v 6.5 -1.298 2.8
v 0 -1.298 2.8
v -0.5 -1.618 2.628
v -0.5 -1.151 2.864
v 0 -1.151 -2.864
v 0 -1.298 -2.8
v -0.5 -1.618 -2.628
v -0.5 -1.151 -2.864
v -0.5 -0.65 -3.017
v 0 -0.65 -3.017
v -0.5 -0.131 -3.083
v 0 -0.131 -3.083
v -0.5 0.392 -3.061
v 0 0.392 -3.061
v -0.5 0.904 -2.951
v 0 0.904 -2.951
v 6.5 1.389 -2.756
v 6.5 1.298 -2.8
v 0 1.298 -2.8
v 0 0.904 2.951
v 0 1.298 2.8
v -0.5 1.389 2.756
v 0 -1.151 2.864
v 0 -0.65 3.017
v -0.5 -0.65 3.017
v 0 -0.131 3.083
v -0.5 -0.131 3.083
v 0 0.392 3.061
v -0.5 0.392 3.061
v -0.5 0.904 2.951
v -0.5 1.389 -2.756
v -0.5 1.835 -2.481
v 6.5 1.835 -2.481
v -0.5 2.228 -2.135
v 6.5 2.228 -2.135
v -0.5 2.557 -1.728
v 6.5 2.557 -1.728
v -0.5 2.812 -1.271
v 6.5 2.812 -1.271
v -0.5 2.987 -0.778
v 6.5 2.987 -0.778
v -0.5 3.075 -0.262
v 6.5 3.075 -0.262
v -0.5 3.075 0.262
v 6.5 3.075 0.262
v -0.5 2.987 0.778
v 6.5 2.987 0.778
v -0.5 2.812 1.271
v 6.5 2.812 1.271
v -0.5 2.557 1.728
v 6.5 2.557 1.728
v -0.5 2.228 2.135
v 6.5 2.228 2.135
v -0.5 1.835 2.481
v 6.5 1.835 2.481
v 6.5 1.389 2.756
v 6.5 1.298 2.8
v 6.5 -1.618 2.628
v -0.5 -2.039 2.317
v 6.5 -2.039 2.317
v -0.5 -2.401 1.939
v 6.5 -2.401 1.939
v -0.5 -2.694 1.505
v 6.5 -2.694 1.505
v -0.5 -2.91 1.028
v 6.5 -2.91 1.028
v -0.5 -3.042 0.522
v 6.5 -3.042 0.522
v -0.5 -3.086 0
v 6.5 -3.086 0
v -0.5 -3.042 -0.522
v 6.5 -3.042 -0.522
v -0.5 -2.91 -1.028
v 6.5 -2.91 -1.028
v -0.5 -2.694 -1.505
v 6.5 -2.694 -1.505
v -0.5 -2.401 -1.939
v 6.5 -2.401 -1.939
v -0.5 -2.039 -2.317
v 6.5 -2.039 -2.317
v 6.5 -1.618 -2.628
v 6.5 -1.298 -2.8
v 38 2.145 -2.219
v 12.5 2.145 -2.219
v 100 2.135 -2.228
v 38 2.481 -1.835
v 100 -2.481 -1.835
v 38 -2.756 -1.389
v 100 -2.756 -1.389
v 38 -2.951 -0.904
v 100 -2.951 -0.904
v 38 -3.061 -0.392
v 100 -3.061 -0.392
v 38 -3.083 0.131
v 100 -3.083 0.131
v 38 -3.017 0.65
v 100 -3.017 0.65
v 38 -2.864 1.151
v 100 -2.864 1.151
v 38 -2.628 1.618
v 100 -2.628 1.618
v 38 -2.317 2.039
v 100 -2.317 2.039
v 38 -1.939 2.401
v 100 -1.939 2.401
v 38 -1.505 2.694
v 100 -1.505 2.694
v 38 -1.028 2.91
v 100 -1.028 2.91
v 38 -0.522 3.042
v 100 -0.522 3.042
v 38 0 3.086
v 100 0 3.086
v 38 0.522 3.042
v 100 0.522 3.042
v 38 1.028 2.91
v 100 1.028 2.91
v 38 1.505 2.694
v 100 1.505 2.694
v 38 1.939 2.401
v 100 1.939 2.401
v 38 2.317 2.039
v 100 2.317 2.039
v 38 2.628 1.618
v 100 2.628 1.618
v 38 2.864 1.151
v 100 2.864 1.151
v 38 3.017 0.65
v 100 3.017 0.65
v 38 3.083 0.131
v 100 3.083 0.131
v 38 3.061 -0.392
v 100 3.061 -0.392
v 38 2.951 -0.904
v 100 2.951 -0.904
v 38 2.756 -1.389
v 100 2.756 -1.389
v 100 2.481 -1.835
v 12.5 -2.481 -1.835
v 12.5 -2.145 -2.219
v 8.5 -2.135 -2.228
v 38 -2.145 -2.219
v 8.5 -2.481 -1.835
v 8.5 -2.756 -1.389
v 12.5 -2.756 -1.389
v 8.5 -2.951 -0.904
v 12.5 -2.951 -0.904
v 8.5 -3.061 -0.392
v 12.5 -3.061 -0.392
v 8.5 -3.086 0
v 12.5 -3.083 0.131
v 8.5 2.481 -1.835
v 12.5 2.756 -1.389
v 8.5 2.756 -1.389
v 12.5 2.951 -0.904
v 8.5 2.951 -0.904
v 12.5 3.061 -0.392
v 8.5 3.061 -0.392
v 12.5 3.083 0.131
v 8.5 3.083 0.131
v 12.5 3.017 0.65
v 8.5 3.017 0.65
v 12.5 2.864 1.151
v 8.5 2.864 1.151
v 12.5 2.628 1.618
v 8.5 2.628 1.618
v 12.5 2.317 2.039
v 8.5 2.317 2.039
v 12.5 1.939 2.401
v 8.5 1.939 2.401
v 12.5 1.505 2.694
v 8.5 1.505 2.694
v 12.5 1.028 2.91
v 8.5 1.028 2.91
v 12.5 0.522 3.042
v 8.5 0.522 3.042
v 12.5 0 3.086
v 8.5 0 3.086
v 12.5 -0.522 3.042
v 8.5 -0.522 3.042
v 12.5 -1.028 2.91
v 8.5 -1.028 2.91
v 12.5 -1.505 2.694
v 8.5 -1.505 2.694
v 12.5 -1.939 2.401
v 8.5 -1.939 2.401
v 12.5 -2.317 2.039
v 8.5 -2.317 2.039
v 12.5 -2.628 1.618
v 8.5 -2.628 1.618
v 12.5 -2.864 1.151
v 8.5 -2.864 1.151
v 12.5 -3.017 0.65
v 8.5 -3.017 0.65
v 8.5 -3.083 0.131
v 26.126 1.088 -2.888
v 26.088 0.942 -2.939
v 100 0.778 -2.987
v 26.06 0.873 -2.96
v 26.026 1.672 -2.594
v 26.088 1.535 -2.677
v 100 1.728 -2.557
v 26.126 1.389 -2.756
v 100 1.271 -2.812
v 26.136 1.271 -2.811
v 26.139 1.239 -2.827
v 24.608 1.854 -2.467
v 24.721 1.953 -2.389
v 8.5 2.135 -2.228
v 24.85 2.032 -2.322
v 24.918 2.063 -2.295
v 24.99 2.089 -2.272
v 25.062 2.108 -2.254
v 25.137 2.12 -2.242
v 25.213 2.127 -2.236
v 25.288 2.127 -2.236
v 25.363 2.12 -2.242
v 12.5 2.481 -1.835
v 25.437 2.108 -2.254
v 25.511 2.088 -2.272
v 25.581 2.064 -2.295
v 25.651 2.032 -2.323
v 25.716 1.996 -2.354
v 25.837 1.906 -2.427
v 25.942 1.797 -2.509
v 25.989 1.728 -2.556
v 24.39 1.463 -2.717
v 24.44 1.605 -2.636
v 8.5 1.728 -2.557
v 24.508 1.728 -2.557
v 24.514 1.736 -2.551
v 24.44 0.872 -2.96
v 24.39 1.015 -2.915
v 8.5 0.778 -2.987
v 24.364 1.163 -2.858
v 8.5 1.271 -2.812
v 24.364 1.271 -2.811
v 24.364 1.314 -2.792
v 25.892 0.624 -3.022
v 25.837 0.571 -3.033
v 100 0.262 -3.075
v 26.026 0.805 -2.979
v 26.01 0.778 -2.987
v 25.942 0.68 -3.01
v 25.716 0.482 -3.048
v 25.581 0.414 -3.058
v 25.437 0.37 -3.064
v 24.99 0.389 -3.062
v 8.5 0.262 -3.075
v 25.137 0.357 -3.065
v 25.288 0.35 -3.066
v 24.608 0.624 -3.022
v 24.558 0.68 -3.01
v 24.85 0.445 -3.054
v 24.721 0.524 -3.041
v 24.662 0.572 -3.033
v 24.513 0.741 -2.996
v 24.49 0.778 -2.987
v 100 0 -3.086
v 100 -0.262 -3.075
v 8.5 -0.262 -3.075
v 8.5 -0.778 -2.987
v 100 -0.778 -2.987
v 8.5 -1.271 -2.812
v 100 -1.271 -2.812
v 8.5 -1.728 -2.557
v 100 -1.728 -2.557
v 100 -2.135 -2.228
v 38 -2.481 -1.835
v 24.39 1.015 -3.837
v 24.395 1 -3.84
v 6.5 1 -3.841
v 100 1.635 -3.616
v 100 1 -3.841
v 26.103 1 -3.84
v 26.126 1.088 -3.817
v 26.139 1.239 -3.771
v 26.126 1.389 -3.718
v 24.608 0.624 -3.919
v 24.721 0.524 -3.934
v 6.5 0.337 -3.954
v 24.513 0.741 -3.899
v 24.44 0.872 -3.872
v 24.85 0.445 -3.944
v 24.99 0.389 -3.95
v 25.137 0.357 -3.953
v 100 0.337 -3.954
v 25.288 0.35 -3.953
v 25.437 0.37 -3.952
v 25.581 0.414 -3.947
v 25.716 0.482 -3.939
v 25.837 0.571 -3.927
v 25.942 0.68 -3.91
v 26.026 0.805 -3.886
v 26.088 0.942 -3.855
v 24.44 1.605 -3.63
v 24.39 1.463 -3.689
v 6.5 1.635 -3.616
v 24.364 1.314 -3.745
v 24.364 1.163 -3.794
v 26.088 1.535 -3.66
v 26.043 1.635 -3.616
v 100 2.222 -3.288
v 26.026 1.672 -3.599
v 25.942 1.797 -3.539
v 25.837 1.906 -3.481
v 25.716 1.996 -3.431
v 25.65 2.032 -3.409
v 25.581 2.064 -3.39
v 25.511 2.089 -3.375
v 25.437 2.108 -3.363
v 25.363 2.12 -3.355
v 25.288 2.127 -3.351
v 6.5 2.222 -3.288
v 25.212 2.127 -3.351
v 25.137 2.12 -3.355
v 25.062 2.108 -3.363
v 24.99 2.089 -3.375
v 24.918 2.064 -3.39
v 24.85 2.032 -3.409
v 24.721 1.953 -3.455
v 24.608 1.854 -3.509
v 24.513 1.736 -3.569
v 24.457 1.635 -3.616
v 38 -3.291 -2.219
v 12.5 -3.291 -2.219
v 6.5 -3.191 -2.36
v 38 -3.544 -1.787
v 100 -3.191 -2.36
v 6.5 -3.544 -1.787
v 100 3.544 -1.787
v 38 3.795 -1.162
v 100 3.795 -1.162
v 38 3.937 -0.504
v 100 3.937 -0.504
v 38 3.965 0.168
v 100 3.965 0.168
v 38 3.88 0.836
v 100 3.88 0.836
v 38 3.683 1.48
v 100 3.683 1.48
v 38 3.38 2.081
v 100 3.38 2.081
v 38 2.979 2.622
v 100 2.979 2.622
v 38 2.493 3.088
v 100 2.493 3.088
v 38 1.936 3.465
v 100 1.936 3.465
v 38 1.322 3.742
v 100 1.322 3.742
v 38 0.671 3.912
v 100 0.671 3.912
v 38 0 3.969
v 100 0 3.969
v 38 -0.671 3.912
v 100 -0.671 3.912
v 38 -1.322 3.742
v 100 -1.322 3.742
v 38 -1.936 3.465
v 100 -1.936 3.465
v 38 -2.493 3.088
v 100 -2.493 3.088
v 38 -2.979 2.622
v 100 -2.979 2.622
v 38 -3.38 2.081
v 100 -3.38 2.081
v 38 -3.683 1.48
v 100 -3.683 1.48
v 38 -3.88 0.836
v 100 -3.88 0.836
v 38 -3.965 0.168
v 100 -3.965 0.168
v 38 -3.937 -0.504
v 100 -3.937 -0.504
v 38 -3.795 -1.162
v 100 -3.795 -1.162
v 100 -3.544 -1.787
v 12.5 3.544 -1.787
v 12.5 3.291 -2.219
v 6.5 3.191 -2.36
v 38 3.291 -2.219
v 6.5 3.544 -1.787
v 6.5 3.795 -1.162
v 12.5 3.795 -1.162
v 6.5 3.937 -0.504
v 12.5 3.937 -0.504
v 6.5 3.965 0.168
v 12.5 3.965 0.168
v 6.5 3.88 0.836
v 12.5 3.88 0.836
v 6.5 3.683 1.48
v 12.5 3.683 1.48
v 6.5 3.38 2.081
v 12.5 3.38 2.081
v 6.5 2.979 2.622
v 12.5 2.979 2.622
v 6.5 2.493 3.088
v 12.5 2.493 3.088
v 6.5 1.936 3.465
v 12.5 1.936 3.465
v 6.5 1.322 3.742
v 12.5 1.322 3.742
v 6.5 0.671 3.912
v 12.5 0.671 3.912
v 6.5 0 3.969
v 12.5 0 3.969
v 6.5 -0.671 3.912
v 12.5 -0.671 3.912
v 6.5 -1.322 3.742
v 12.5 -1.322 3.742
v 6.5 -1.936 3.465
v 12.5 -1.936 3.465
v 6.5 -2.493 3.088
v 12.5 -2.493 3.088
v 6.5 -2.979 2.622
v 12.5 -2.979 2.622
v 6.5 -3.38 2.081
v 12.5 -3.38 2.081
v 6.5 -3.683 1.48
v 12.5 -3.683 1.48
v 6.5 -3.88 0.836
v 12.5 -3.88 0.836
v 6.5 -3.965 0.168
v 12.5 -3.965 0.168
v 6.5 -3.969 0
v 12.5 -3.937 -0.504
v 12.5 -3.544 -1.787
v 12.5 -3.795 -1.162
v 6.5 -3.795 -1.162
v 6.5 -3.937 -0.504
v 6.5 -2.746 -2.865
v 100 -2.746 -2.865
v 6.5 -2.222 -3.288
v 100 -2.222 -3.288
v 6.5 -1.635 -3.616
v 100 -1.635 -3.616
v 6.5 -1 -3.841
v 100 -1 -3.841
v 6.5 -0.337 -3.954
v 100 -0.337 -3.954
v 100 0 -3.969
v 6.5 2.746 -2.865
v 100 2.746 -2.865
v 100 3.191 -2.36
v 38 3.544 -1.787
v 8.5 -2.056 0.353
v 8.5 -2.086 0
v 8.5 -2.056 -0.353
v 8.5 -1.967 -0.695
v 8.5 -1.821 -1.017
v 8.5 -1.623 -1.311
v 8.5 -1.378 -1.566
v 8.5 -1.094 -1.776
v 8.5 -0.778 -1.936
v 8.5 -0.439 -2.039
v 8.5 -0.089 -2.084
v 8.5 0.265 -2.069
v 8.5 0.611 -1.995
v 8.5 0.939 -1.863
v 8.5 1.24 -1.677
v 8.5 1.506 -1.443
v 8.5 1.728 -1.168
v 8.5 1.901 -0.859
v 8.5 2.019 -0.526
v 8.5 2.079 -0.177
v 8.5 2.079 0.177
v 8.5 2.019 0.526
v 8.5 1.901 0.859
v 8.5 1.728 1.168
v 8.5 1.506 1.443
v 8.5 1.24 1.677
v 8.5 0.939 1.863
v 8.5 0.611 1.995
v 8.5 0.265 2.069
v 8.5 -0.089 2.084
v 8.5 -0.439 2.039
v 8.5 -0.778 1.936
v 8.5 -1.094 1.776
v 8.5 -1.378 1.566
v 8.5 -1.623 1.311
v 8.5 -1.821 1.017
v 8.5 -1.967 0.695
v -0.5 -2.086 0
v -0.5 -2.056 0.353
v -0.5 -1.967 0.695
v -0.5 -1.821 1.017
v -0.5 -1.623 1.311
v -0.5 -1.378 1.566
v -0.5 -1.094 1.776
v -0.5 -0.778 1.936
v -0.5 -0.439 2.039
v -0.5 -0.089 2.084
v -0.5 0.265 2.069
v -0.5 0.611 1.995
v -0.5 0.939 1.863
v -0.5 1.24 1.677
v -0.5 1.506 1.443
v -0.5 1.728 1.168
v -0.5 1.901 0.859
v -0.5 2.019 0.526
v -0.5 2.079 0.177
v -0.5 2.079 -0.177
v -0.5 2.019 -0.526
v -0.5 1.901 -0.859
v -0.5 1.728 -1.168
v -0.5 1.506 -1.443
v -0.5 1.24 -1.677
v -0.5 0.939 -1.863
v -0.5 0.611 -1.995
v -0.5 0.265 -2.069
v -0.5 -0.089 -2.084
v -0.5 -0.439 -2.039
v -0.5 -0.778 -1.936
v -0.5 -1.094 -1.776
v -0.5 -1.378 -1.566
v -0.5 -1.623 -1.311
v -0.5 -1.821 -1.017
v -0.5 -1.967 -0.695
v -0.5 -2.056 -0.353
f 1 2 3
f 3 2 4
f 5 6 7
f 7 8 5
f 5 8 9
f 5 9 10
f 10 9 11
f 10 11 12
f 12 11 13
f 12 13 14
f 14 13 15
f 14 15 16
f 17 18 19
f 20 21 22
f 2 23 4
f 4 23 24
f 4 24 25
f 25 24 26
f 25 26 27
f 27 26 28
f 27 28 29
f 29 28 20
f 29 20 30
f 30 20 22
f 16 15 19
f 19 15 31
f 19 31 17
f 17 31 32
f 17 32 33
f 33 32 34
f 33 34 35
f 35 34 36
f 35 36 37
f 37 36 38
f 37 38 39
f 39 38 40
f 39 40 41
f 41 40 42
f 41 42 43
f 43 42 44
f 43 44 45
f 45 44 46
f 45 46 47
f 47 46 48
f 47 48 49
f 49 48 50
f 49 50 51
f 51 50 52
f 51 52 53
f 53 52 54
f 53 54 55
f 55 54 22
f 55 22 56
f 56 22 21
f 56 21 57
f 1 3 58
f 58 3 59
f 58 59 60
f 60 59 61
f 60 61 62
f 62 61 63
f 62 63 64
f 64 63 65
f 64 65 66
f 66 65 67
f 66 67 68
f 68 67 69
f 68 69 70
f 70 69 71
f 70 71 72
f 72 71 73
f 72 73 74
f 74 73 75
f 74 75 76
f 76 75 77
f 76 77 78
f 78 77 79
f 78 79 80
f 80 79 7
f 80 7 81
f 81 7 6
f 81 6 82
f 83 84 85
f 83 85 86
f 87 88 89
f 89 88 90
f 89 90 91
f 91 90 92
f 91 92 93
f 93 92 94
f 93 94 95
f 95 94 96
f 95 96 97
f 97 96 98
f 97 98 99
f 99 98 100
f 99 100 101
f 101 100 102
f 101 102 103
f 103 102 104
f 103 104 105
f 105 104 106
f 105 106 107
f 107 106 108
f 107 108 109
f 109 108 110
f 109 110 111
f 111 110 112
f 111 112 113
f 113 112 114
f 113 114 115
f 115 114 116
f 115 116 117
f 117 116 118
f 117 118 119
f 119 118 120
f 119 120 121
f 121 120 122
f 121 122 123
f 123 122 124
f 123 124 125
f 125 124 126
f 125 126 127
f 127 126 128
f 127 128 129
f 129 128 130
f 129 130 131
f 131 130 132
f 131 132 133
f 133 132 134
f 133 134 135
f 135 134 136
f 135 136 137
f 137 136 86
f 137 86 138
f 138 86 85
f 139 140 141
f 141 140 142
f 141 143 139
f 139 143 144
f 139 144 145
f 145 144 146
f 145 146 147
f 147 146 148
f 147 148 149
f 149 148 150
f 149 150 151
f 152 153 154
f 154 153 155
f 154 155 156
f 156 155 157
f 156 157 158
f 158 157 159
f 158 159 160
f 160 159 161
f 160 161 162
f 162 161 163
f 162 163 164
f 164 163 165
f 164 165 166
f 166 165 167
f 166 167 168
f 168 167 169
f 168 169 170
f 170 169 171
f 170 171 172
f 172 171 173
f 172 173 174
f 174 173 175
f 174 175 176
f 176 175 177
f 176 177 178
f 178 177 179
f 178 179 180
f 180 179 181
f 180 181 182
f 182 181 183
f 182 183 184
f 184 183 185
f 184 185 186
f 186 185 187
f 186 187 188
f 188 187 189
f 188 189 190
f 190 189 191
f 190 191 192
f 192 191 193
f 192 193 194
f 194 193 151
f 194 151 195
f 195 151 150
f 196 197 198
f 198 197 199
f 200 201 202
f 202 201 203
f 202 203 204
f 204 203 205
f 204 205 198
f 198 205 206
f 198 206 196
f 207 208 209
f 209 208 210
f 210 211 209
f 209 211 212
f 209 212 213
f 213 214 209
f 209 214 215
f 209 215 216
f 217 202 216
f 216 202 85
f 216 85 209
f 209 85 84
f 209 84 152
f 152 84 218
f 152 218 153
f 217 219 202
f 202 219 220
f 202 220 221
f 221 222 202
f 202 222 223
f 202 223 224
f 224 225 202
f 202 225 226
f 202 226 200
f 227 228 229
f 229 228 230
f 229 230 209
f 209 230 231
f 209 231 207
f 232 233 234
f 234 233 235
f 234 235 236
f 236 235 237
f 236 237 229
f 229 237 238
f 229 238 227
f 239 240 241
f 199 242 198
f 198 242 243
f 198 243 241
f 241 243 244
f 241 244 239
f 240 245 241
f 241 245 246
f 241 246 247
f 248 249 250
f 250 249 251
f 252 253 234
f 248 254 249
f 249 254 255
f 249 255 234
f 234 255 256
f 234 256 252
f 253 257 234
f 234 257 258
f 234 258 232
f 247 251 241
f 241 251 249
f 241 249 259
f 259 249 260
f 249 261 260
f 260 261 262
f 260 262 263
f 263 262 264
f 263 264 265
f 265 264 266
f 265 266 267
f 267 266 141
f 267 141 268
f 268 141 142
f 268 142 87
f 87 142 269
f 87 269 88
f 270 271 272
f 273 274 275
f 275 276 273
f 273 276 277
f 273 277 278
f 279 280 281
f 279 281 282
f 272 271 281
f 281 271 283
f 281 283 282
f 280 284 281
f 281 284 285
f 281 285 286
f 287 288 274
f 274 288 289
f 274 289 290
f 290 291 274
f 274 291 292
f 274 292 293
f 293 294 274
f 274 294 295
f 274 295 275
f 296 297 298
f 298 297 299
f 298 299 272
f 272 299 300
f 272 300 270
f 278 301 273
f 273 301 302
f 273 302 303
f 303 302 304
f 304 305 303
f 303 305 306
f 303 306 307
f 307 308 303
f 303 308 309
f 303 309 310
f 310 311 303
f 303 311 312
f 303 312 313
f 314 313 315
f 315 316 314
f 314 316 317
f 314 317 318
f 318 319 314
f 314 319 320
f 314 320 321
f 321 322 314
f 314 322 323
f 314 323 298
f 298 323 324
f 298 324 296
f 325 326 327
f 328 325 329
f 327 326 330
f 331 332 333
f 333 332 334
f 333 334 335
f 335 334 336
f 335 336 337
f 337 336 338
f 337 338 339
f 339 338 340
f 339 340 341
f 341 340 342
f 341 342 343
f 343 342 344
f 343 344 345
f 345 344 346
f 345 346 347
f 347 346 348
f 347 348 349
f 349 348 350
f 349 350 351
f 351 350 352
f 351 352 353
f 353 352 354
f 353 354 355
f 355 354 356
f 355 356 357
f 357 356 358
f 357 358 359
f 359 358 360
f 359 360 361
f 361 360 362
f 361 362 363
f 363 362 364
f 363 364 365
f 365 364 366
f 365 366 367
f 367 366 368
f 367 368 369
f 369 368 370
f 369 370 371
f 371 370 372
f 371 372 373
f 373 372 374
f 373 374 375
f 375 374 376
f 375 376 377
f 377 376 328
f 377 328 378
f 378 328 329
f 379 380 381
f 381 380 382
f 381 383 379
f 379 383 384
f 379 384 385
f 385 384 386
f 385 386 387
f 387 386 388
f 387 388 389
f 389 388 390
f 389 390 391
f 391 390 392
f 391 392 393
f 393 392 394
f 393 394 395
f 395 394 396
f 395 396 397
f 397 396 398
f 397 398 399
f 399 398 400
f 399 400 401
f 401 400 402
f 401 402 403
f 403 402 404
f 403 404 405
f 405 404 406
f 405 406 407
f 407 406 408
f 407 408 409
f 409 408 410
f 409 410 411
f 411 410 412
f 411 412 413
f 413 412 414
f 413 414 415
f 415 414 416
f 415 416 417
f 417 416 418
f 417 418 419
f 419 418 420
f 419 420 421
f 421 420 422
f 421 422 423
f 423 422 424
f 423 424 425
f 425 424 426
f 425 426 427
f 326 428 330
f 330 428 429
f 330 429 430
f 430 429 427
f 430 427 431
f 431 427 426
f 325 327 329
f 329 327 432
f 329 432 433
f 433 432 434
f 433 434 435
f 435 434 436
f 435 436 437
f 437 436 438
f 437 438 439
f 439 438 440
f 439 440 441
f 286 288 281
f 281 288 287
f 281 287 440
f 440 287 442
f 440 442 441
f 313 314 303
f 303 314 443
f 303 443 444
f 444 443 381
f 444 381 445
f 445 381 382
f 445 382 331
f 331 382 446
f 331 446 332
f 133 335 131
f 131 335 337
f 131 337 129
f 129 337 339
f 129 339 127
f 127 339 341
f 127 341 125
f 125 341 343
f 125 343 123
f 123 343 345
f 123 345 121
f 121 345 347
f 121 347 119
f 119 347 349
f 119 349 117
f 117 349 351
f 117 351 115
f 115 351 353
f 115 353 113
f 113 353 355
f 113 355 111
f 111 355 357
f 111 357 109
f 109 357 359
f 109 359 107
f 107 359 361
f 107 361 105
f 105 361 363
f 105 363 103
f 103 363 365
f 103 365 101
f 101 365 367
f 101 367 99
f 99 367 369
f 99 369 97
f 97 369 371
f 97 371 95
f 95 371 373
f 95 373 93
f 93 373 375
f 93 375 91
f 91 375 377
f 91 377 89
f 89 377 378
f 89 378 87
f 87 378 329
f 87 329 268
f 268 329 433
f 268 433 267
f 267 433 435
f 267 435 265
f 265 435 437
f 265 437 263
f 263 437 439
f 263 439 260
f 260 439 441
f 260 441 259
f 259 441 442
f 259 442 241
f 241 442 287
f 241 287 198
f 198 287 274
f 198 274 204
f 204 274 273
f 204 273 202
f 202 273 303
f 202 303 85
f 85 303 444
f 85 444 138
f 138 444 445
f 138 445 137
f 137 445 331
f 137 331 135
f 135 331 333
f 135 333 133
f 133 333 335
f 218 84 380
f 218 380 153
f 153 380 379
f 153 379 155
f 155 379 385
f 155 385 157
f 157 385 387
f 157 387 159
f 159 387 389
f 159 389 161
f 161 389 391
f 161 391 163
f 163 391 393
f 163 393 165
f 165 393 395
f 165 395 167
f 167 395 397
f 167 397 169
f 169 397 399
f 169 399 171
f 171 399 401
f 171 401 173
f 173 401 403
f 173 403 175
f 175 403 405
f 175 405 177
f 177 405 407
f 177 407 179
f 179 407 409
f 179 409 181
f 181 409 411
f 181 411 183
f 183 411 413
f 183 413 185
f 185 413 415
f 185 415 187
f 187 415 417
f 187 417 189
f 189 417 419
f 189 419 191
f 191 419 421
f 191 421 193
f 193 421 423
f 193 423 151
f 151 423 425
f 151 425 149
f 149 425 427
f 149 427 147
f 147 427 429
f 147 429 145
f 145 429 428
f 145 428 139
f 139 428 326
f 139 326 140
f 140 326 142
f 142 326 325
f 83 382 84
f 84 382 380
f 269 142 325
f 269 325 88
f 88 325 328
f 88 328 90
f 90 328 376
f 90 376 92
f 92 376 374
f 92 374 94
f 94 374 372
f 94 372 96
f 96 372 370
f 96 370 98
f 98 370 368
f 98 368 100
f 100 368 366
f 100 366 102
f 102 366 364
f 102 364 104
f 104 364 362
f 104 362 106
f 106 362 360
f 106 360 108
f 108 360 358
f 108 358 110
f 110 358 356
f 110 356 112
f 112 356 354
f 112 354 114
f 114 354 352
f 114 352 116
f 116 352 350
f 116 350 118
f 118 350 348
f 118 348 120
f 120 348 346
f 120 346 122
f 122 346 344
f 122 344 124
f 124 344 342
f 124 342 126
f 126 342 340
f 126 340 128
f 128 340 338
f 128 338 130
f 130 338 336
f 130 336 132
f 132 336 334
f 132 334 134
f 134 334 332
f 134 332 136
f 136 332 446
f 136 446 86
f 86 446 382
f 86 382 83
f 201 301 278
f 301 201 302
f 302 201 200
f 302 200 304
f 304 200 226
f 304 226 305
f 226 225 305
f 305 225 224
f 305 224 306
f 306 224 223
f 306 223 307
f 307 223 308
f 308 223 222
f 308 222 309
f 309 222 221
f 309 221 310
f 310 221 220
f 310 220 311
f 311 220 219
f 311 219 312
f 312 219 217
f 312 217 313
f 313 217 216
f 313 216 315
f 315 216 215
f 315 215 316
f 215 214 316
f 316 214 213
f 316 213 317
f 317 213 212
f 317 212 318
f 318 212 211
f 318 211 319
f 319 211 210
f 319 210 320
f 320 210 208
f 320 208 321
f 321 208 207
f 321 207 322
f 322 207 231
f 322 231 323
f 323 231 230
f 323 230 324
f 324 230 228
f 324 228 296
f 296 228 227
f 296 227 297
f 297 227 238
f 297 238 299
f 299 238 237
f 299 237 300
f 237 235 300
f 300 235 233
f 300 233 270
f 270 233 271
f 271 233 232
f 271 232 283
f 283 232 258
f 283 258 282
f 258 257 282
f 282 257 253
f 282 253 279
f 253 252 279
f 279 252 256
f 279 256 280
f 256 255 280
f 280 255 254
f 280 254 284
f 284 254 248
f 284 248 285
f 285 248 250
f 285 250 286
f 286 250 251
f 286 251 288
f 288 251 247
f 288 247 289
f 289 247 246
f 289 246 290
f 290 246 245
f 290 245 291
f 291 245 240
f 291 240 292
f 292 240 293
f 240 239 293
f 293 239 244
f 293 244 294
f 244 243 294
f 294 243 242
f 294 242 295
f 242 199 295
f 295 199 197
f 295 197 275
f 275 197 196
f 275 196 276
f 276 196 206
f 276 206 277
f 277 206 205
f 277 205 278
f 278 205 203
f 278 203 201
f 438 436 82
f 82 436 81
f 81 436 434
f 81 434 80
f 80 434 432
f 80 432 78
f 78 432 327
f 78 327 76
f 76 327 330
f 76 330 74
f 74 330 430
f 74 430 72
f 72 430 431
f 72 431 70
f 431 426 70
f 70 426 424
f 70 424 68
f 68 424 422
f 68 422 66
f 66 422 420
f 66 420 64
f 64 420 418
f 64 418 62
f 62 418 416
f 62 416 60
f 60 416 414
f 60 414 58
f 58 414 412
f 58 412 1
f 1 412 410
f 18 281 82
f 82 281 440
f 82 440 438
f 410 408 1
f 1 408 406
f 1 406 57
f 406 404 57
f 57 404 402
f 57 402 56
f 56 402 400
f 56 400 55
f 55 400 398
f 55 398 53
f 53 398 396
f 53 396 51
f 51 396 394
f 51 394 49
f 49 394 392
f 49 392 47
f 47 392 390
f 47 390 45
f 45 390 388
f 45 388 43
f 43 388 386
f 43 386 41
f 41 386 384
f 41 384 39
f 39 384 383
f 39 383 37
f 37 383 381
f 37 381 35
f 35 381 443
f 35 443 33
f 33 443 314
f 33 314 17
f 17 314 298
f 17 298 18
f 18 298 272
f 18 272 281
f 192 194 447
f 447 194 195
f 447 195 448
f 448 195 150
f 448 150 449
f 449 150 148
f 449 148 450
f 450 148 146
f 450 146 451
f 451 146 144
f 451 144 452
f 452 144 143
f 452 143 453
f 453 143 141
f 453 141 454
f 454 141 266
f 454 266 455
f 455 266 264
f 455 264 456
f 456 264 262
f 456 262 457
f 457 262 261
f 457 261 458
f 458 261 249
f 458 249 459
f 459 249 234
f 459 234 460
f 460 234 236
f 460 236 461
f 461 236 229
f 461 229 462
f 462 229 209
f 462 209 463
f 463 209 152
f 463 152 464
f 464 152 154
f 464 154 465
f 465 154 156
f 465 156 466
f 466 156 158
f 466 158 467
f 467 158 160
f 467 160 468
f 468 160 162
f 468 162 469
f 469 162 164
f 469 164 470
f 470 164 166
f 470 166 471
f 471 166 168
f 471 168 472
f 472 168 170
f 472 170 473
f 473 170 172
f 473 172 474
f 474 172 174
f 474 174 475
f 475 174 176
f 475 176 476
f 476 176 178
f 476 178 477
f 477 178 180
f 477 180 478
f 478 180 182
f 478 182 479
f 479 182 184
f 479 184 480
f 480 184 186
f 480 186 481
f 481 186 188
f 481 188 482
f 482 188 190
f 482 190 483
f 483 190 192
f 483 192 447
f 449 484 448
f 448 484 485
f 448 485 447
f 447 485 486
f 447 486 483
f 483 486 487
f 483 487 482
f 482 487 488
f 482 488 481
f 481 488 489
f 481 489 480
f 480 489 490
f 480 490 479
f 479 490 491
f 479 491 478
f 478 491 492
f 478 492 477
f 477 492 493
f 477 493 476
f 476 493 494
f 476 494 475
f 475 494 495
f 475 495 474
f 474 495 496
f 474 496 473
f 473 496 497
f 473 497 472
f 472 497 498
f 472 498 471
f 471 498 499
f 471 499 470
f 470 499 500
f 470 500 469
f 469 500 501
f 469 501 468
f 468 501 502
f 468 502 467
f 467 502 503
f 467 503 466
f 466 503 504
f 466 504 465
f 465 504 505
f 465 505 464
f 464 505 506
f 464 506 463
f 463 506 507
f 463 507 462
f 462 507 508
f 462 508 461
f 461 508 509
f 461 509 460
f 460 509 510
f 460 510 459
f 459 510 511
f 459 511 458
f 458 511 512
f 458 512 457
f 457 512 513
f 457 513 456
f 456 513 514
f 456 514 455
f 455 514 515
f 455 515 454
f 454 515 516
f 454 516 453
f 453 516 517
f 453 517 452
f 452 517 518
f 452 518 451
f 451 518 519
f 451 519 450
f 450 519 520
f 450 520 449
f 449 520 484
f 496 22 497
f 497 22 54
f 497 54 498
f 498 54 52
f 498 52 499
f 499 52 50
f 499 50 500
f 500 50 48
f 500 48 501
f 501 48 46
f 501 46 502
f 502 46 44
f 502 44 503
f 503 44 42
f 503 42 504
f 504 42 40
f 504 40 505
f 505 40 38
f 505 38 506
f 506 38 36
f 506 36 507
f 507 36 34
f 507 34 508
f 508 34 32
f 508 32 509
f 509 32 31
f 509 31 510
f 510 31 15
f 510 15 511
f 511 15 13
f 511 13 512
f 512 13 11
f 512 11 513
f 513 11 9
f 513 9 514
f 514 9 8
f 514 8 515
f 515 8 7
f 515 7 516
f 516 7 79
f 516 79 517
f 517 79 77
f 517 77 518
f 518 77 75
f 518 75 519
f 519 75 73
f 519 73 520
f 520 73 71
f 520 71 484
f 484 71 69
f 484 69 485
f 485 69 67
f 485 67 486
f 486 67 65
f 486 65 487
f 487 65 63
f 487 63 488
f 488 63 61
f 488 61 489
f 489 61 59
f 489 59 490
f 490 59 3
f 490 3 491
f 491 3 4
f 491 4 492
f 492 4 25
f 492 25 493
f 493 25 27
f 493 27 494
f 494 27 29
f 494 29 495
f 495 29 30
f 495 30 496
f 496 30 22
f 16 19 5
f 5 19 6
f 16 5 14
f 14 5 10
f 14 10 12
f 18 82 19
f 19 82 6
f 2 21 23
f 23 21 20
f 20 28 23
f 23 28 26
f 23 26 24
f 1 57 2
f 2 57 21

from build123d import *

# Parameters (mm, degrees)
SKETCH2_R                       = 3.96875
SKETCH2_R_2                     = 3.0861
BODY_DEPTH                      = 100
SCREW_HOLE_FOR_WHEEL_DEPTH      = 101.157386
SCREW_HOLE_FOR_WHEEL_DEPTH_BACK = 101.157386
SKETCH3_R                       = 0.5
NOSE_START                      = 12
SKETCH5_R                       = 3.96875
NOSE_DEPTH                      = 12
CHAMFER1_SIZE                   = 1
SKETCH10_R                      = 2.4
CUT_EXTRUDE3_DEPTH              = 113.140546
CAVITY_FOR_WHEEL_DEPTH          = 101.157386
CAVITY_FOR_WHEEL_DEPTH_BACK     = 101.157386
SKETCH4_W                       = 25.5
SKETCH4_H                       = 13.71875
F_2_56_TAPPED_HOLE2_D           = 1.778
CUT_EXTRUDE5_DEPTH              = 10
CUT_EXTRUDE5_DEPTH_BACK         = 10
SKETCH17_R                      = 1.1303
CUT_EXTRUDE4_DEPTH              = 10
CUT_EXTRUDE4_DEPTH_BACK         = 10
SKETCH16_W                      = 30.682561
SKETCH16_H                      = 17.27639
BOSS_EXTRUDE1_DEPTH             = 7
BOSS_EXTRUDE1_DEPTH_BACK        = 2
SKETCH18_R                      = 3.0861
SKETCH18_R_2                    = 2.0861
SKETCH20_W                      = 2.127384
SKETCH20_H                      = 7.889241
SKETCH20_W_2                    = 2.358385
SKETCH20_H_2                    = 10.122376
CUT_EXTRUDE6_DEPTH              = 6.5


with BuildPart() as part:
    # Sketch2 → Body (new body)
    with BuildSketch(Plane(origin=(0, 0, 0), x_dir=(0, 0, -1), z_dir=(1, 0, 0))):
        Circle(SKETCH2_R)
        Circle(SKETCH2_R_2, mode=Mode.SUBTRACT)
    extrude(amount=BODY_DEPTH)

    # Sketch3 → Screw hole for wheel (cut, two sides: drawn at the far end of the back side and taken through both)
    with BuildSketch(Plane.XY.offset(-SCREW_HOLE_FOR_WHEEL_DEPTH_BACK)):
        with Locations((25.25, 1.238647)):
            Circle(SKETCH3_R)
    extrude(amount=SCREW_HOLE_FOR_WHEEL_DEPTH + SCREW_HOLE_FOR_WHEEL_DEPTH_BACK, mode=Mode.SUBTRACT)

    # Sketch5 → Nose (add)
    with BuildSketch(Plane.ZY.offset(NOSE_START)):
        Circle(SKETCH5_R)
    extrude(amount=-NOSE_DEPTH)

    # Chamfer1
    chamfer1_edges = [part.edges().sort_by_distance(p)[0] for p in [
        (-12, 0, -3.96875),
    ]]
    chamfer(chamfer1_edges, length=CHAMFER1_SIZE)

    # Sketch10 → Cut-Extrude3 (cut, through all)
    with BuildSketch(Plane.ZY.offset(12)):
        Circle(SKETCH10_R)
    extrude(amount=-CUT_EXTRUDE3_DEPTH, mode=Mode.SUBTRACT)

    # Cut-Sweep1: sweep along a curve in space
    with BuildLine() as cut_sweep1_path:
        add(Edge.make_bspline(
            [(-12, 0, -3.96875), (-11.970813, 0.516187, -3.96875), (-11.911788, 1.559824, -3.762105), (-11.823773, 2.878986, -2.87939), (-11.735619, 3.762213, -1.558315), (-11.647502, 4.072044, 0), (-11.559375, 3.762112, 1.558315), (-11.47125, 2.879388, 2.87939), (-11.383125, 1.558315, 3.762105), (-11.295, 0, 4.072073), (-11.206875, -1.558315, 3.762105), (-11.11875, -2.87939, 2.87939), (-11.030625, -3.762105, 1.558315), (-10.9425, -4.072073, 0), (-10.854375, -3.762105, -1.558315), (-10.76625, -2.87939, -2.87939), (-10.678125, -1.558315, -3.762105), (-10.59, 0, -4.072073), (-10.501875, 1.558315, -3.762105), (-10.41375, 2.87939, -2.87939), (-10.325625, 3.762105, -1.558315), (-10.2375, 4.072073, 0), (-10.149375, 3.762105, 1.558315), (-10.06125, 2.87939, 2.87939), (-9.973125, 1.558315, 3.762105), (-9.885, 0, 4.072073), (-9.796875, -1.558315, 3.762105), (-9.70875, -2.87939, 2.87939), (-9.620625, -3.762105, 1.558315), (-9.5325, -4.072073, 0), (-9.444375, -3.762105, -1.558315), (-9.35625, -2.87939, -2.87939), (-9.268125, -1.558315, -3.762105), (-9.18, 0, -4.072073), (-9.091875, 1.558315, -3.762105), (-9.00375, 2.87939, -2.87939), (-8.915625, 3.762105, -1.558315), (-8.8275, 4.072073, 0), (-8.739375, 3.762105, 1.558315), (-8.65125, 2.87939, 2.87939), (-8.563125, 1.558315, 3.762105), (-8.475, 0, 4.072073), (-8.386875, -1.558315, 3.762105), (-8.29875, -2.87939, 2.87939), (-8.210625, -3.762105, 1.558315), (-8.1225, -4.072073, 0), (-8.034375, -3.762105, -1.558315), (-7.94625, -2.87939, -2.87939), (-7.858125, -1.558315, -3.762105), (-7.77, 0, -4.072073), (-7.681875, 1.558315, -3.762105), (-7.59375, 2.87939, -2.87939), (-7.505625, 3.762105, -1.558315), (-7.4175, 4.072073, 0), (-7.329375, 3.762105, 1.558315), (-7.24125, 2.87939, 2.87939), (-7.153125, 1.558315, 3.762105), (-7.065, 0, 4.072073), (-6.976875, -1.558315, 3.762105), (-6.88875, -2.87939, 2.87939), (-6.800625, -3.762105, 1.558315), (-6.7125, -4.072073, 0), (-6.624375, -3.762105, -1.558315), (-6.53625, -2.87939, -2.87939), (-6.448125, -1.558315, -3.762105), (-6.36, 0, -4.072073), (-6.271875, 1.558315, -3.762105), (-6.18375, 2.87939, -2.87939), (-6.095625, 3.762105, -1.558315), (-6.0075, 4.072073, 0), (-5.919375, 3.762105, 1.558315), (-5.83125, 2.87939, 2.87939), (-5.743125, 1.558315, 3.762105), (-5.655, 0, 4.072073), (-5.566875, -1.558315, 3.762105), (-5.47875, -2.87939, 2.87939), (-5.390625, -3.762105, 1.558315), (-5.3025, -4.072073, 0), (-5.214375, -3.762105, -1.558315), (-5.12625, -2.87939, -2.87939), (-5.038125, -1.558315, -3.762105), (-4.95, 0, -4.072073), (-4.861875, 1.558315, -3.762105), (-4.77375, 2.87939, -2.87939), (-4.685625, 3.762105, -1.558315), (-4.5975, 4.072073, 0), (-4.509375, 3.762105, 1.558315), (-4.42125, 2.87939, 2.87939), (-4.333125, 1.558315, 3.762105), (-4.245, 0, 4.072073), (-4.156875, -1.558315, 3.762105), (-4.06875, -2.87939, 2.87939), (-3.980625, -3.762105, 1.558315), (-3.8925, -4.072073, 0), (-3.804375, -3.762105, -1.558315), (-3.71625, -2.87939, -2.87939), (-3.628125, -1.558315, -3.762105), (-3.54, 0, -4.072073), (-3.451875, 1.558315, -3.762105), (-3.36375, 2.87939, -2.87939), (-3.275625, 3.762105, -1.558315), (-3.1875, 4.072073, 0), (-3.099375, 3.762105, 1.558315), (-3.01125, 2.87939, 2.87939), (-2.923125, 1.558315, 3.762105), (-2.835, 0, 4.072073), (-2.746875, -1.558315, 3.762105), (-2.65875, -2.87939, 2.87939), (-2.570625, -3.762105, 1.558315), (-2.4825, -4.072073, 0), (-2.394375, -3.762105, -1.558315), (-2.30625, -2.87939, -2.87939), (-2.218125, -1.558315, -3.762105), (-2.13, 0, -4.072073), (-2.041875, 1.558315, -3.762105), (-1.95375, 2.87939, -2.87939), (-1.865625, 3.762105, -1.558315), (-1.7775, 4.072073, 0), (-1.689375, 3.762105, 1.558315), (-1.60125, 2.87939, 2.87939), (-1.513125, 1.558315, 3.762105), (-1.425, 0, 4.072073), (-1.336875, -1.558315, 3.762105), (-1.24875, -2.87939, 2.87939), (-1.160625, -3.762105, 1.558315), (-1.0725, -4.072073, 0), (-0.984375, -3.762105, -1.558315), (-0.89625, -2.87939, -2.87939), (-0.808125, -1.558315, -3.762105), (-0.72, 0, -4.072073), (-0.631875, 1.558315, -3.762105), (-0.54375, 2.879388, -2.87939), (-0.455625, 3.762112, -1.558315), (-0.367498, 4.072044, 0), (-0.279381, 3.762213, 1.558315), (-0.191227, 2.878986, 2.87939), (-0.103212, 1.559824, 3.762105), (-0.044187, 0.516187, 3.96875), (-0.015, 0, 3.96875)],
            knots=[0, 0, 0, 0, 0.007353, 0.014706, 0.022059, 0.029412, 0.036765, 0.044118, 0.051471, 0.058824, 0.066176, 0.073529, 0.080882, 0.088235, 0.095588, 0.102941, 0.110294, 0.117647, 0.125, 0.132353, 0.139706, 0.147059, 0.154412, 0.161765, 0.169118, 0.176471, 0.183824, 0.191176, 0.198529, 0.205882, 0.213235, 0.220588, 0.227941, 0.235294, 0.242647, 0.25, 0.257353, 0.264706, 0.272059, 0.279412, 0.286765, 0.294118, 0.301471, 0.308824, 0.316176, 0.323529, 0.330882, 0.338235, 0.345588, 0.352941, 0.360294, 0.367647, 0.375, 0.382353, 0.389706, 0.397059, 0.404412, 0.411765, 0.419118, 0.426471, 0.433824, 0.441176, 0.448529, 0.455882, 0.463235, 0.470588, 0.477941, 0.485294, 0.492647, 0.5, 0.507353, 0.514706, 0.522059, 0.529412, 0.536765, 0.544118, 0.551471, 0.558824, 0.566176, 0.573529, 0.580882, 0.588235, 0.595588, 0.602941, 0.610294, 0.617647, 0.625, 0.632353, 0.639706, 0.647059, 0.654412, 0.661765, 0.669118, 0.676471, 0.683824, 0.691176, 0.698529, 0.705882, 0.713235, 0.720588, 0.727941, 0.735294, 0.742647, 0.75, 0.757353, 0.764706, 0.772059, 0.779412, 0.786765, 0.794118, 0.801471, 0.808824, 0.816176, 0.823529, 0.830882, 0.838235, 0.845588, 0.852941, 0.860294, 0.867647, 0.875, 0.882353, 0.889706, 0.897059, 0.904412, 0.911765, 0.919118, 0.926471, 0.933824, 0.941176, 0.948529, 0.955882, 0.963235, 0.970588, 0.977941, 0.985294, 0.992647, 1, 1, 1, 1], degree=3))
    with BuildLine() as cut_sweep1_axis:
        Line((-12, 0, 0), (-0.015, 0, 0))
    # Sketch7 → Cut-Sweep1 (sweep, cut)
    with BuildSketch(Plane.XY):
        Polygon((-12, -3.96875), (-12.09, -3.96875), (-12.53, -3.1), (-12.71, -3.1), (-12.71, -5.224109), (-11.29, -5.224109), (-11.29, -3.1), (-11.47, -3.1), (-11.91, -3.96875), align=None)
    sweep(path=cut_sweep1_path.line, binormal=cut_sweep1_axis.edges()[0], mode=Mode.SUBTRACT)

    # Sketch4 → cavity for wheel (cut, two sides: drawn at the far end of the back side and taken through both)
    with BuildSketch(Plane(origin=(0, 0, 0), x_dir=(1, 0, 0), z_dir=(0, 1, 0)).offset(-CAVITY_FOR_WHEEL_DEPTH_BACK)):
        with Locations((25.25, -4.640625)):
            Rectangle(SKETCH4_W, SKETCH4_H)
    extrude(amount=CAVITY_FOR_WHEEL_DEPTH + CAVITY_FOR_WHEEL_DEPTH_BACK, mode=Mode.SUBTRACT)

    # #2-56 Tapped Hole2 (through all)
    with Locations(Plane.XY.offset(-2.21875)):
        with Locations((25.25, 1.238647)):
            Hole(F_2_56_TAPPED_HOLE2_D / 2)

    # Sketch17 → Cut-Extrude5 (cut, two sides: drawn at the far end of the back side and taken through both)
    with BuildSketch(Plane.XY.offset(-CUT_EXTRUDE5_DEPTH_BACK)):
        with Locations((3, 0)):
            Circle(SKETCH17_R)
    extrude(amount=CUT_EXTRUDE5_DEPTH + CUT_EXTRUDE5_DEPTH_BACK, mode=Mode.SUBTRACT)

    # Sketch16 → Cut-Extrude4 (cut, two sides: drawn at the far end of the back side and taken through both)
    with BuildSketch(Plane.XY.offset(-CUT_EXTRUDE4_DEPTH_BACK)):
        with Locations((-8.84128, 0.232091)):
            Rectangle(SKETCH16_W, SKETCH16_H)
    extrude(amount=CUT_EXTRUDE4_DEPTH + CUT_EXTRUDE4_DEPTH_BACK, mode=Mode.SUBTRACT)

    # Sketch18 → Boss-Extrude1 (add, two sides: drawn at the far end of the back side and taken through both)
    with BuildSketch(Plane.ZY.offset(-6.5).offset(-BOSS_EXTRUDE1_DEPTH_BACK)):
        with Locations(Location((0, 0, 0), (0, 0, 270))):
            Circle(SKETCH18_R)
        with Locations(Location((0, 0, 0), (0, 0, 270))):
            Circle(SKETCH18_R_2, mode=Mode.SUBTRACT)
    extrude(amount=BOSS_EXTRUDE1_DEPTH + BOSS_EXTRUDE1_DEPTH_BACK)

    # Sketch20 → Cut-Extrude6 (cut)
    with BuildSketch(Plane(origin=(0, 0, 0), x_dir=(0, 0, -1), z_dir=(1, 0, 0))):
        with Locations((3.863692, -0.275293)):
            Rectangle(SKETCH20_W, SKETCH20_H)
        with Locations((-3.979192, -0.378477)):
            Rectangle(SKETCH20_W_2, SKETCH20_H_2)
    extrude(amount=CUT_EXTRUDE6_DEPTH, mode=Mode.SUBTRACT)


solid = part.part
